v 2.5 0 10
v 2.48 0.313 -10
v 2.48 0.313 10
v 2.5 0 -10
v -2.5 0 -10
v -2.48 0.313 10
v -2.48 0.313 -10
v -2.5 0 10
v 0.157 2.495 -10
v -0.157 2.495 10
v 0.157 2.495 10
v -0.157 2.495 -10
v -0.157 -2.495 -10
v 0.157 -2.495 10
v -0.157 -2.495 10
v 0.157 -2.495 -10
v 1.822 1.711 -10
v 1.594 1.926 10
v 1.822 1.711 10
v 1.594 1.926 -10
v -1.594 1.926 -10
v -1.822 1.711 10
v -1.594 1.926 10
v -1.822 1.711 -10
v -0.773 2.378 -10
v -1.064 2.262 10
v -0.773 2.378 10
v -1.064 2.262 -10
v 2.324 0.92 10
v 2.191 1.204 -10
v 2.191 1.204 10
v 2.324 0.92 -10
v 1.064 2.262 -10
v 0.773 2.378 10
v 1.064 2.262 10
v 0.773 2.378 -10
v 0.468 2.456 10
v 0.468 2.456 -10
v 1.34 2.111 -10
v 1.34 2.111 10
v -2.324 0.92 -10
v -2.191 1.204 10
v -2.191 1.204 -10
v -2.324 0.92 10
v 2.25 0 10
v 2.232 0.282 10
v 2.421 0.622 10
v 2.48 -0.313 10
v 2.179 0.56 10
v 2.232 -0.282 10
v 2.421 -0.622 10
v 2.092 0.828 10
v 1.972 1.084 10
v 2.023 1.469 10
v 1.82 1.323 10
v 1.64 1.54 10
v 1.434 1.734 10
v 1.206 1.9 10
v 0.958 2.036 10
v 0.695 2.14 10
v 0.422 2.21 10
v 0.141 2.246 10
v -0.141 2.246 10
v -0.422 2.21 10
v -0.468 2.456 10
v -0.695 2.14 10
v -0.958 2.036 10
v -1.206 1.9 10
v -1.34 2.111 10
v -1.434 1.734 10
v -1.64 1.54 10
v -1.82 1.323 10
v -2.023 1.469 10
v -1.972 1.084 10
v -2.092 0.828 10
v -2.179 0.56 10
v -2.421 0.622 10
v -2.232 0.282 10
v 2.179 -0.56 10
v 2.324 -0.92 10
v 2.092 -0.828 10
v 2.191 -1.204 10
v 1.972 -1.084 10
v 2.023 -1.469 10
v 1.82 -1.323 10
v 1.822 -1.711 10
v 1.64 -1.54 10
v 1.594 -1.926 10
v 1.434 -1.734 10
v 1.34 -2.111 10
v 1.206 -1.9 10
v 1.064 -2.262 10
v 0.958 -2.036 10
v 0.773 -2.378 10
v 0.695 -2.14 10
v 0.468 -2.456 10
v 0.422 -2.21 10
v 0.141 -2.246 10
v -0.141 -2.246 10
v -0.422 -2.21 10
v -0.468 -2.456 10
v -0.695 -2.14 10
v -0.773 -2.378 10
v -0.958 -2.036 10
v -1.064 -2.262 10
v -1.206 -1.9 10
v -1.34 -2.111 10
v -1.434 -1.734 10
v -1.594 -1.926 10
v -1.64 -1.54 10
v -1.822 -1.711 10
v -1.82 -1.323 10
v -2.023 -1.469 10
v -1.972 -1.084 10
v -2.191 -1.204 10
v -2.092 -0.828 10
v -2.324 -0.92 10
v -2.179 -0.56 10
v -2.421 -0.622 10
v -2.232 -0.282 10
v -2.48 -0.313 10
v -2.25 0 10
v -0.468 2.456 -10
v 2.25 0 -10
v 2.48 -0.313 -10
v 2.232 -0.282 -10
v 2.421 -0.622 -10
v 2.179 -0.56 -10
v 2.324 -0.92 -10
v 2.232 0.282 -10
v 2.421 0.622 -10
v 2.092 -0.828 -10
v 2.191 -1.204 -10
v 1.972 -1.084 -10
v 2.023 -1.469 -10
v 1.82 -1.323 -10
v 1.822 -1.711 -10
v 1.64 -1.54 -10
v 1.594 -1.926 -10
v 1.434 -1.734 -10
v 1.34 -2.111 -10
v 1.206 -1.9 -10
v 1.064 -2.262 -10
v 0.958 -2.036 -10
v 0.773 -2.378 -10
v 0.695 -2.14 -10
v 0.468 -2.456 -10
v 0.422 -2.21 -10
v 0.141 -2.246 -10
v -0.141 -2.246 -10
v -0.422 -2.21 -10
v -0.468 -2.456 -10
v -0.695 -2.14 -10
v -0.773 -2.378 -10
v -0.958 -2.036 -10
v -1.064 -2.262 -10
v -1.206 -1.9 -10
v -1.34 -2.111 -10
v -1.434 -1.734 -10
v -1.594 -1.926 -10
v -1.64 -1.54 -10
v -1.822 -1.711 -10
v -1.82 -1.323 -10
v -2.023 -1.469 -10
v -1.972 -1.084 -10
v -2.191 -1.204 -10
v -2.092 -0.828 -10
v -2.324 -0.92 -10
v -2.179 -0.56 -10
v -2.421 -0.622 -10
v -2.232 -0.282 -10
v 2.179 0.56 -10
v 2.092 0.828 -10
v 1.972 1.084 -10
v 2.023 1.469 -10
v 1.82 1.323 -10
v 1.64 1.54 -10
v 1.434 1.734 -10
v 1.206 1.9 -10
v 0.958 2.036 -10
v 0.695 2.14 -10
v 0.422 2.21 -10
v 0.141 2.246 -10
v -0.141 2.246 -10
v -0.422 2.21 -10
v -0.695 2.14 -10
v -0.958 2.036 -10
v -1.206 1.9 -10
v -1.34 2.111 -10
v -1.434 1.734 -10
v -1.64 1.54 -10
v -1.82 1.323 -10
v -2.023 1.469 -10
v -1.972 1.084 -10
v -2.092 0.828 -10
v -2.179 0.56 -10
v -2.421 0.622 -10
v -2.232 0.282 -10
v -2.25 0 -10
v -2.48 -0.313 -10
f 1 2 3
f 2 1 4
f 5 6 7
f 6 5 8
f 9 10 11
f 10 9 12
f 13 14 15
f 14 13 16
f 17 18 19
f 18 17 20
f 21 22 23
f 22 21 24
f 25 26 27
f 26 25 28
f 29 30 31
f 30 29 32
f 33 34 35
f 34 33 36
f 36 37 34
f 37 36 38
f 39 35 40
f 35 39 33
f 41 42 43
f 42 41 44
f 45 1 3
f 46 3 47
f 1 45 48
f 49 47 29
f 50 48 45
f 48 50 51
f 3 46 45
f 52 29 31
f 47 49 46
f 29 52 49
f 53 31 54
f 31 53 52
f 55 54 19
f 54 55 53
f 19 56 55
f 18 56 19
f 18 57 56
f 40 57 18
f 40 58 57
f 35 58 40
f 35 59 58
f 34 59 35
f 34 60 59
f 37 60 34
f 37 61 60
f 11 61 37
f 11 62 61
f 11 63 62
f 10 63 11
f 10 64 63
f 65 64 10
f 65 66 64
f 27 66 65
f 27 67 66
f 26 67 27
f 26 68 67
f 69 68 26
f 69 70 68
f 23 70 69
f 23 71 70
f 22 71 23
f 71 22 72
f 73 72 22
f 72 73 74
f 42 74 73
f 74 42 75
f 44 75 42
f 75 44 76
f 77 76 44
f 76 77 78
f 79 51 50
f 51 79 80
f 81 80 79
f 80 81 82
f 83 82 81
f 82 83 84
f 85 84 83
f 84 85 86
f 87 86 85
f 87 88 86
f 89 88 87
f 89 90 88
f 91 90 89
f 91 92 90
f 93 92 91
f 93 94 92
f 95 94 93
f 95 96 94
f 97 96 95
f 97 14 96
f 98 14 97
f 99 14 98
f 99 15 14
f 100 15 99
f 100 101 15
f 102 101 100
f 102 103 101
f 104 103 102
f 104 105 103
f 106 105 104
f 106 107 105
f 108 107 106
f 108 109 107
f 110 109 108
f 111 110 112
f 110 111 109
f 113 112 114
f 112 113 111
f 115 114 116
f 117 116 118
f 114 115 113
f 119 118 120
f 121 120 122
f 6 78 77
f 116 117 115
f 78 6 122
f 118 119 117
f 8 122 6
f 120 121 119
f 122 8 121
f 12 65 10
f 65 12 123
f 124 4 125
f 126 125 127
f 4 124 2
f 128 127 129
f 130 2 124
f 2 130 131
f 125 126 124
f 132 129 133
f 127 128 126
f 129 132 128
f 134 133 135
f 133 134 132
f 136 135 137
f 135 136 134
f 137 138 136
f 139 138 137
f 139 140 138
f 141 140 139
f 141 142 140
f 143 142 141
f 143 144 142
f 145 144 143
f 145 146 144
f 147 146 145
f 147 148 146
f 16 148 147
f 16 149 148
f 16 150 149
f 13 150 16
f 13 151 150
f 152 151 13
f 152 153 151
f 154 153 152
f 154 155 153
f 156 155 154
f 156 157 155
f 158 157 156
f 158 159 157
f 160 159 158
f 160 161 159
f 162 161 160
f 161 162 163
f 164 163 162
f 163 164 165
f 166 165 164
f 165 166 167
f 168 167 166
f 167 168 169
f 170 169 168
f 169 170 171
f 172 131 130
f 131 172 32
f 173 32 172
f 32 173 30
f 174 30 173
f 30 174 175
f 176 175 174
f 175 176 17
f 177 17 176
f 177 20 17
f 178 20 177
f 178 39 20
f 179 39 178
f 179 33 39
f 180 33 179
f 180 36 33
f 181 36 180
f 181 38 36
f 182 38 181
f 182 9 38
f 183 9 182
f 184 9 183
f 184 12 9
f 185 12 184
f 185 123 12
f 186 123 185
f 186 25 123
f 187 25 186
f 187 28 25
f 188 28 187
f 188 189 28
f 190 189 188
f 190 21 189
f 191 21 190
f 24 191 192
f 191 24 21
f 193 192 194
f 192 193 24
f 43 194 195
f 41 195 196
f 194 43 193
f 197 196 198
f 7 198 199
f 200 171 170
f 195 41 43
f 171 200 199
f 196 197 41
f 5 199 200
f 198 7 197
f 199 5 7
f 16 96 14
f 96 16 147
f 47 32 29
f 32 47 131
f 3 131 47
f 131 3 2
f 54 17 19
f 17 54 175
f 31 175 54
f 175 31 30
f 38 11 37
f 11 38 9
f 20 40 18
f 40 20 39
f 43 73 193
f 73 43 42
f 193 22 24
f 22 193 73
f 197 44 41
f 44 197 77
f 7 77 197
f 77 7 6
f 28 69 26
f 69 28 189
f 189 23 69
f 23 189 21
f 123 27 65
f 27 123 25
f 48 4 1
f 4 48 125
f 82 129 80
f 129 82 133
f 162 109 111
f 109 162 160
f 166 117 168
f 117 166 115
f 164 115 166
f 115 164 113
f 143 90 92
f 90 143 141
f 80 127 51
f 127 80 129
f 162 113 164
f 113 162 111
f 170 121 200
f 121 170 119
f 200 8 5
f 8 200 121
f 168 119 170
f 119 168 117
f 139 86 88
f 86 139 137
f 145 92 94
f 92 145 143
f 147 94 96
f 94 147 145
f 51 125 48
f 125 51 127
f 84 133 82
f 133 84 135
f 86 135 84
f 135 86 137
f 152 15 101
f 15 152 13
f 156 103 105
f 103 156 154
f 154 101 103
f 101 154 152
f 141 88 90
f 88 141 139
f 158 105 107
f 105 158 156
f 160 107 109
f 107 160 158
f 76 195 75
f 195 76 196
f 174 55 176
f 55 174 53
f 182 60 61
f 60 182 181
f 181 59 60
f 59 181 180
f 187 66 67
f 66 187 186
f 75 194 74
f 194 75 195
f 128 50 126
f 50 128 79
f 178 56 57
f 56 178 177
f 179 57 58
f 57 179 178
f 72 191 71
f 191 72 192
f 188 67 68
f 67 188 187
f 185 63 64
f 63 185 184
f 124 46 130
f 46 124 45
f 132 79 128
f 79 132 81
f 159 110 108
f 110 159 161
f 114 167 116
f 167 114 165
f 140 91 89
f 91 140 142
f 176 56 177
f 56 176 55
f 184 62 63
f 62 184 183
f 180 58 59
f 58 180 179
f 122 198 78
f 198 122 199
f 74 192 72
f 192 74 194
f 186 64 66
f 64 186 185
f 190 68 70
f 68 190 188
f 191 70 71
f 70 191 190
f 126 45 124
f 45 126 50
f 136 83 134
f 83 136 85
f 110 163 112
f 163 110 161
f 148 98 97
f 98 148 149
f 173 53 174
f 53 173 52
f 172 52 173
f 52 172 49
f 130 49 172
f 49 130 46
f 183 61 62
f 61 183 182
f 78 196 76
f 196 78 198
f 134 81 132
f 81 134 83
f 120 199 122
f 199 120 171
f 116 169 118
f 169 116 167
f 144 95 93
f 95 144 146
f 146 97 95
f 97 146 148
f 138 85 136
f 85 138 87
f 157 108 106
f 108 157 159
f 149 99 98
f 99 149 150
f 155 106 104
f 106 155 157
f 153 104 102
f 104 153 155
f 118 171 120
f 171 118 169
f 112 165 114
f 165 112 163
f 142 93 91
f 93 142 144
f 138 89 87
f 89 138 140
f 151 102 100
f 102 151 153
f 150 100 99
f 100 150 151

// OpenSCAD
$fn = 50;


difference() {
	union() {
		translate(v = [0, 0, -10.0000000000]) {
			cylinder(h = 20, r = 2.5000000000);
		}
	}
	union() {
		translate(v = [0, 0, -100.0000000000]) {
			cylinder(h = 200, r = 2.2500000000);
		}
	}
}
